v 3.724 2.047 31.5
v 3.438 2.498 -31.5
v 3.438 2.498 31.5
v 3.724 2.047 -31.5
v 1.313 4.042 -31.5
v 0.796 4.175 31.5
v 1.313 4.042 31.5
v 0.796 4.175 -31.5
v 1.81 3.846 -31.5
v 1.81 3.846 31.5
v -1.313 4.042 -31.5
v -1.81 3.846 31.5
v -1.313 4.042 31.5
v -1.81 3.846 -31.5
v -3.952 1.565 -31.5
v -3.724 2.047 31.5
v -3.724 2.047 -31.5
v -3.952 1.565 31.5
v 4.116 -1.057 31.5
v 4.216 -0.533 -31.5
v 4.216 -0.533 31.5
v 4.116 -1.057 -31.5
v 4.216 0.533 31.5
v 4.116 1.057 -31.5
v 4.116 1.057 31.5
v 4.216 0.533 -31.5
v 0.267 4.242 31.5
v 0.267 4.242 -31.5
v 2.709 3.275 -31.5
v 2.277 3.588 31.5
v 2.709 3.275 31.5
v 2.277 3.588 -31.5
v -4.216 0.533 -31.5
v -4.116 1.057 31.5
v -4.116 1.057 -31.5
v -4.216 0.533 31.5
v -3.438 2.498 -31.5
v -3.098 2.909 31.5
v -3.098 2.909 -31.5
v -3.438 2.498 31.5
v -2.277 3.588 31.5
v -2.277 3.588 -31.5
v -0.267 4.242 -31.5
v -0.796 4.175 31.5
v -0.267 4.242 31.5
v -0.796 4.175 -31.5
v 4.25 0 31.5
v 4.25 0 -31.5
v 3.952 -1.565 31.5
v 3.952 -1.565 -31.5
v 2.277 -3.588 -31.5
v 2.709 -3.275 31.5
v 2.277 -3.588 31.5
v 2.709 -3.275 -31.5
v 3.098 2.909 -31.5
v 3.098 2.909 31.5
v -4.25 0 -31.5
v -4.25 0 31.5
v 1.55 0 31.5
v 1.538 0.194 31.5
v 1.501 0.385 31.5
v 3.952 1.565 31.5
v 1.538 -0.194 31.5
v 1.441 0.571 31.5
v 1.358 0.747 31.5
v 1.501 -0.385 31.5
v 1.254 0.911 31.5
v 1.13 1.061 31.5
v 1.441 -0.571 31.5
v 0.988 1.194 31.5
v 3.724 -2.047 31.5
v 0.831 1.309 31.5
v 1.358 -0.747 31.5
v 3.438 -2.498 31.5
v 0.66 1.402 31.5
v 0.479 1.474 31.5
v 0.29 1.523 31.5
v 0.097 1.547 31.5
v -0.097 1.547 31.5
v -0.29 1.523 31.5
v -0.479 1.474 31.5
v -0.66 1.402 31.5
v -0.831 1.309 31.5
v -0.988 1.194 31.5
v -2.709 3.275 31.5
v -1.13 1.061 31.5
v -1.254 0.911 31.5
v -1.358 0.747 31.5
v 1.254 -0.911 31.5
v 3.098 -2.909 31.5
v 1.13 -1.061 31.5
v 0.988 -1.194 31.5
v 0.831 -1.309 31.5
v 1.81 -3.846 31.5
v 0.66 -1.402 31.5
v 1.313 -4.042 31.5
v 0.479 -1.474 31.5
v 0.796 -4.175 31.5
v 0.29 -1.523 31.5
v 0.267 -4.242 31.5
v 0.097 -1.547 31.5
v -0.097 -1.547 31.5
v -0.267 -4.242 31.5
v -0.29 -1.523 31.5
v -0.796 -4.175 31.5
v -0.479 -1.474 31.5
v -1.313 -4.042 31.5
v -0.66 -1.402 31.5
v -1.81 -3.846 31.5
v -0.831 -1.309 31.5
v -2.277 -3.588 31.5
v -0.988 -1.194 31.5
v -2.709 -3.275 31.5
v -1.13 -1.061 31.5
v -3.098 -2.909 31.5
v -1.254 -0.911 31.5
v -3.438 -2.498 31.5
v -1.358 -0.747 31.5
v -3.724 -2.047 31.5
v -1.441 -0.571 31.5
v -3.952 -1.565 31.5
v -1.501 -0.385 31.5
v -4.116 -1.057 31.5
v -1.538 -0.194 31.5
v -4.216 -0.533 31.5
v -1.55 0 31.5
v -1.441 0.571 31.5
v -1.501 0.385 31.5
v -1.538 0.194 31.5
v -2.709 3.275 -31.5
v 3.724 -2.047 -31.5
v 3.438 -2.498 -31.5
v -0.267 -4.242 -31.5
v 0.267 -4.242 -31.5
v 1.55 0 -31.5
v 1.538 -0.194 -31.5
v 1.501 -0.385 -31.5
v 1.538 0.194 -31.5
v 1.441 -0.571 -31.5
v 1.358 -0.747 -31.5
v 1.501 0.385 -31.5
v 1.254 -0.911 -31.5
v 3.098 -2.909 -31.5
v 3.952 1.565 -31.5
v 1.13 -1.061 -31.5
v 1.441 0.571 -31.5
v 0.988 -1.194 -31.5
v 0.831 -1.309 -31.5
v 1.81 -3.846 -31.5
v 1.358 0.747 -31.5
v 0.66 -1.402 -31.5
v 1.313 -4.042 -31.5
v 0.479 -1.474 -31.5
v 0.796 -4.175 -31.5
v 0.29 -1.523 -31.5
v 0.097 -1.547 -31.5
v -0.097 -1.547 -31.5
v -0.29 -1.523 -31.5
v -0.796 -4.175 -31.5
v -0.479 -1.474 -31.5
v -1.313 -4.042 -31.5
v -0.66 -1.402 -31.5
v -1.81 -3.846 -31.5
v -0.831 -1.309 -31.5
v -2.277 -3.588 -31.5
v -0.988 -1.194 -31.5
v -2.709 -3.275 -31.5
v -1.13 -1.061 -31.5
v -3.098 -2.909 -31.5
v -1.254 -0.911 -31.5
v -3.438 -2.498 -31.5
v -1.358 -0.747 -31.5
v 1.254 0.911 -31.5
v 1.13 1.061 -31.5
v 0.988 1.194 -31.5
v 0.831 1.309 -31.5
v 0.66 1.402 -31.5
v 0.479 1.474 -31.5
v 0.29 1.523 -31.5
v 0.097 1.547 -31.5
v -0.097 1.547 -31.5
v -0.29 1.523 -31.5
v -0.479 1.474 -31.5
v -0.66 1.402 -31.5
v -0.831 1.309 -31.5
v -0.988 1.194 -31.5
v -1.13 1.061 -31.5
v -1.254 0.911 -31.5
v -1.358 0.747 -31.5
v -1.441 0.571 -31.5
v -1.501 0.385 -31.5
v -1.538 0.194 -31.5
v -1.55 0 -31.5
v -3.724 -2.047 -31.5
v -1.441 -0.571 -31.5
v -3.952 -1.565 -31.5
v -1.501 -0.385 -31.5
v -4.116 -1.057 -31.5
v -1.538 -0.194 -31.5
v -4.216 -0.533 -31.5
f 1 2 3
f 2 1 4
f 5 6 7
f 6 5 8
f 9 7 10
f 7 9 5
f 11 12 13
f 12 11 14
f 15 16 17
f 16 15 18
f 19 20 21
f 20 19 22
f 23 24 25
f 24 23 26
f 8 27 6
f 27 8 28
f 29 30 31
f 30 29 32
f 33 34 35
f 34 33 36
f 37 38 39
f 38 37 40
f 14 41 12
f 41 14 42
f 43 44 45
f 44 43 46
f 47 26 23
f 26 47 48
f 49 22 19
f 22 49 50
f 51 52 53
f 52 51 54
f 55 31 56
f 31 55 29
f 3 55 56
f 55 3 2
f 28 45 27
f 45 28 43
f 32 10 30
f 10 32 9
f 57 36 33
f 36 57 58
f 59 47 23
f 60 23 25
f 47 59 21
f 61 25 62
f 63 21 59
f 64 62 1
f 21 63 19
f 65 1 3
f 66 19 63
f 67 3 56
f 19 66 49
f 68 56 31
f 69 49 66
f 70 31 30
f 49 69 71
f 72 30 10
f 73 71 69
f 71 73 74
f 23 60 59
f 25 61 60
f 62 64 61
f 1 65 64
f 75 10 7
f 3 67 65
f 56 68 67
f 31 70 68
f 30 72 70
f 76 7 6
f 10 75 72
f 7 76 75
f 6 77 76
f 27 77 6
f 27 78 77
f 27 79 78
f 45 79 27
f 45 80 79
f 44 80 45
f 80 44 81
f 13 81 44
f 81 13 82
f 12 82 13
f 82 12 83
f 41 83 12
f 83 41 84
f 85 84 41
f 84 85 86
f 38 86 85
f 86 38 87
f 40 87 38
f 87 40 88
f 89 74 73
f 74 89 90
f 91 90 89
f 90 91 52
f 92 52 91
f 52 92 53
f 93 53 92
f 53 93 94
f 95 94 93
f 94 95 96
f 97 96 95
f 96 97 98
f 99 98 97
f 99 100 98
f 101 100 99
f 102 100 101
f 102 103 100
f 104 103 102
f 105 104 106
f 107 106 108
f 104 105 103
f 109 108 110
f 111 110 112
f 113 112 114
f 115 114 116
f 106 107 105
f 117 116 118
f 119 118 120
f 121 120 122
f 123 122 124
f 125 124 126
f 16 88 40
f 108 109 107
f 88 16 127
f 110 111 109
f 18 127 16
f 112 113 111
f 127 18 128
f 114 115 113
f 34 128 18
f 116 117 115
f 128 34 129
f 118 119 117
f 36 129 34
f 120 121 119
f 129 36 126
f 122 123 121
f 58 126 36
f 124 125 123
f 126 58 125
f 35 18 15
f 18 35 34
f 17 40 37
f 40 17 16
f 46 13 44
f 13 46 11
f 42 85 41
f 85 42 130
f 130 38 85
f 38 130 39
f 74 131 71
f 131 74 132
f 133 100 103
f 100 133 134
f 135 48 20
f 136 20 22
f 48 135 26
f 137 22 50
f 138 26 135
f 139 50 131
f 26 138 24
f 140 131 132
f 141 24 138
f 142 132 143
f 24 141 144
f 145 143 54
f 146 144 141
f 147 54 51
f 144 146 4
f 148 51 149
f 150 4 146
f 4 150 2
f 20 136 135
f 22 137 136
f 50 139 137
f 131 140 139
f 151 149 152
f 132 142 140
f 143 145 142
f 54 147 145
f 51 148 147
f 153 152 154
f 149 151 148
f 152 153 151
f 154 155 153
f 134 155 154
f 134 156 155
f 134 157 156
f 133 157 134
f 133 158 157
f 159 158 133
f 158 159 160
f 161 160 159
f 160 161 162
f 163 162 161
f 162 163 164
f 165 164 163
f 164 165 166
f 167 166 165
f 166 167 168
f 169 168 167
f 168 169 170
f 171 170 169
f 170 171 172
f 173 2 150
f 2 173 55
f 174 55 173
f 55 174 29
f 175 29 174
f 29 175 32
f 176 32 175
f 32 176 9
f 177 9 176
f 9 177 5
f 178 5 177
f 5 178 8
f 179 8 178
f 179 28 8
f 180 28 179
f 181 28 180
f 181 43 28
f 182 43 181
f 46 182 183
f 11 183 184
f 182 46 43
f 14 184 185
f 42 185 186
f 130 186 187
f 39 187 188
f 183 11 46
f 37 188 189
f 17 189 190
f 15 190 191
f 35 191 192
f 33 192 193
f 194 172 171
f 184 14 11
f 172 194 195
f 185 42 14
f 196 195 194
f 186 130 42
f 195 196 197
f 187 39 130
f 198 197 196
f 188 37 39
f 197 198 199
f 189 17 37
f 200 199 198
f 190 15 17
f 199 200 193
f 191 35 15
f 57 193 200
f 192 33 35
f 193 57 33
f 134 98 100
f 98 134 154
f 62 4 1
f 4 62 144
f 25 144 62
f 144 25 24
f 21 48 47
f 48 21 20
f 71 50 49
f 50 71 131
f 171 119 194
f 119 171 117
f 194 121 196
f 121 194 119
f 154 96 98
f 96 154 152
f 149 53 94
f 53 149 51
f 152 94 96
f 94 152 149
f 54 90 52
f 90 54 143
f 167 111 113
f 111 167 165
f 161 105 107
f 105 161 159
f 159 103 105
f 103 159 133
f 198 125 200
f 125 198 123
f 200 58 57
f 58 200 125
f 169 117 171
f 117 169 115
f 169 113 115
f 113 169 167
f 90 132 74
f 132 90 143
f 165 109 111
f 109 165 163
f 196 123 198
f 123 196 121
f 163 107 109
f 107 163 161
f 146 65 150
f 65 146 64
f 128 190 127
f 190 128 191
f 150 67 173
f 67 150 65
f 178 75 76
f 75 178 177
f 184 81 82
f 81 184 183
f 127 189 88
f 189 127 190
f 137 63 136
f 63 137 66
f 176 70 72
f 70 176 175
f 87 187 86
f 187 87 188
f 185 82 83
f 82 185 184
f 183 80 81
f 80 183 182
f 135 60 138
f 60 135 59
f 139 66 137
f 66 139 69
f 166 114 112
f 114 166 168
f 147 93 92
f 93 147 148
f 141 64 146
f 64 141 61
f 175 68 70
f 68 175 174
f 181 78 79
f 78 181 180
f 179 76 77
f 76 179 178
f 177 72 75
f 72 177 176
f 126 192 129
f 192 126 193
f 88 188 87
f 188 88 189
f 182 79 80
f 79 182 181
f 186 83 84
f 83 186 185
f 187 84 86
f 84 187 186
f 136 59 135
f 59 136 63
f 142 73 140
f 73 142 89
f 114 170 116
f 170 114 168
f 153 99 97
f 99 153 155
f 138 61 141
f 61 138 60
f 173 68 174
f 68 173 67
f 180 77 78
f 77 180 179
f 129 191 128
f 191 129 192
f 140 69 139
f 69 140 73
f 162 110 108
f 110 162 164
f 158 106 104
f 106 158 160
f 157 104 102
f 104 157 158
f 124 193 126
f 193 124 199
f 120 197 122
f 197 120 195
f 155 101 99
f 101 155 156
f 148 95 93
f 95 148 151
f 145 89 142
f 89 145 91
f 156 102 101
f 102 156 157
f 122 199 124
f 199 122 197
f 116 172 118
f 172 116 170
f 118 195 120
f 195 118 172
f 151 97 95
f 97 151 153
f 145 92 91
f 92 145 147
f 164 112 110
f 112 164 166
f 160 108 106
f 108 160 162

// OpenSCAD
$fn = 50;


difference() {
	union() {
		translate(v = [0, 0, -31.5000000000]) {
			cylinder(h = 63, r = 4.2500000000);
		}
	}
	union() {
		translate(v = [0, 0, -100.0000000000]) {
			cylinder(h = 200, r = 1.5500000000);
		}
	}
}
